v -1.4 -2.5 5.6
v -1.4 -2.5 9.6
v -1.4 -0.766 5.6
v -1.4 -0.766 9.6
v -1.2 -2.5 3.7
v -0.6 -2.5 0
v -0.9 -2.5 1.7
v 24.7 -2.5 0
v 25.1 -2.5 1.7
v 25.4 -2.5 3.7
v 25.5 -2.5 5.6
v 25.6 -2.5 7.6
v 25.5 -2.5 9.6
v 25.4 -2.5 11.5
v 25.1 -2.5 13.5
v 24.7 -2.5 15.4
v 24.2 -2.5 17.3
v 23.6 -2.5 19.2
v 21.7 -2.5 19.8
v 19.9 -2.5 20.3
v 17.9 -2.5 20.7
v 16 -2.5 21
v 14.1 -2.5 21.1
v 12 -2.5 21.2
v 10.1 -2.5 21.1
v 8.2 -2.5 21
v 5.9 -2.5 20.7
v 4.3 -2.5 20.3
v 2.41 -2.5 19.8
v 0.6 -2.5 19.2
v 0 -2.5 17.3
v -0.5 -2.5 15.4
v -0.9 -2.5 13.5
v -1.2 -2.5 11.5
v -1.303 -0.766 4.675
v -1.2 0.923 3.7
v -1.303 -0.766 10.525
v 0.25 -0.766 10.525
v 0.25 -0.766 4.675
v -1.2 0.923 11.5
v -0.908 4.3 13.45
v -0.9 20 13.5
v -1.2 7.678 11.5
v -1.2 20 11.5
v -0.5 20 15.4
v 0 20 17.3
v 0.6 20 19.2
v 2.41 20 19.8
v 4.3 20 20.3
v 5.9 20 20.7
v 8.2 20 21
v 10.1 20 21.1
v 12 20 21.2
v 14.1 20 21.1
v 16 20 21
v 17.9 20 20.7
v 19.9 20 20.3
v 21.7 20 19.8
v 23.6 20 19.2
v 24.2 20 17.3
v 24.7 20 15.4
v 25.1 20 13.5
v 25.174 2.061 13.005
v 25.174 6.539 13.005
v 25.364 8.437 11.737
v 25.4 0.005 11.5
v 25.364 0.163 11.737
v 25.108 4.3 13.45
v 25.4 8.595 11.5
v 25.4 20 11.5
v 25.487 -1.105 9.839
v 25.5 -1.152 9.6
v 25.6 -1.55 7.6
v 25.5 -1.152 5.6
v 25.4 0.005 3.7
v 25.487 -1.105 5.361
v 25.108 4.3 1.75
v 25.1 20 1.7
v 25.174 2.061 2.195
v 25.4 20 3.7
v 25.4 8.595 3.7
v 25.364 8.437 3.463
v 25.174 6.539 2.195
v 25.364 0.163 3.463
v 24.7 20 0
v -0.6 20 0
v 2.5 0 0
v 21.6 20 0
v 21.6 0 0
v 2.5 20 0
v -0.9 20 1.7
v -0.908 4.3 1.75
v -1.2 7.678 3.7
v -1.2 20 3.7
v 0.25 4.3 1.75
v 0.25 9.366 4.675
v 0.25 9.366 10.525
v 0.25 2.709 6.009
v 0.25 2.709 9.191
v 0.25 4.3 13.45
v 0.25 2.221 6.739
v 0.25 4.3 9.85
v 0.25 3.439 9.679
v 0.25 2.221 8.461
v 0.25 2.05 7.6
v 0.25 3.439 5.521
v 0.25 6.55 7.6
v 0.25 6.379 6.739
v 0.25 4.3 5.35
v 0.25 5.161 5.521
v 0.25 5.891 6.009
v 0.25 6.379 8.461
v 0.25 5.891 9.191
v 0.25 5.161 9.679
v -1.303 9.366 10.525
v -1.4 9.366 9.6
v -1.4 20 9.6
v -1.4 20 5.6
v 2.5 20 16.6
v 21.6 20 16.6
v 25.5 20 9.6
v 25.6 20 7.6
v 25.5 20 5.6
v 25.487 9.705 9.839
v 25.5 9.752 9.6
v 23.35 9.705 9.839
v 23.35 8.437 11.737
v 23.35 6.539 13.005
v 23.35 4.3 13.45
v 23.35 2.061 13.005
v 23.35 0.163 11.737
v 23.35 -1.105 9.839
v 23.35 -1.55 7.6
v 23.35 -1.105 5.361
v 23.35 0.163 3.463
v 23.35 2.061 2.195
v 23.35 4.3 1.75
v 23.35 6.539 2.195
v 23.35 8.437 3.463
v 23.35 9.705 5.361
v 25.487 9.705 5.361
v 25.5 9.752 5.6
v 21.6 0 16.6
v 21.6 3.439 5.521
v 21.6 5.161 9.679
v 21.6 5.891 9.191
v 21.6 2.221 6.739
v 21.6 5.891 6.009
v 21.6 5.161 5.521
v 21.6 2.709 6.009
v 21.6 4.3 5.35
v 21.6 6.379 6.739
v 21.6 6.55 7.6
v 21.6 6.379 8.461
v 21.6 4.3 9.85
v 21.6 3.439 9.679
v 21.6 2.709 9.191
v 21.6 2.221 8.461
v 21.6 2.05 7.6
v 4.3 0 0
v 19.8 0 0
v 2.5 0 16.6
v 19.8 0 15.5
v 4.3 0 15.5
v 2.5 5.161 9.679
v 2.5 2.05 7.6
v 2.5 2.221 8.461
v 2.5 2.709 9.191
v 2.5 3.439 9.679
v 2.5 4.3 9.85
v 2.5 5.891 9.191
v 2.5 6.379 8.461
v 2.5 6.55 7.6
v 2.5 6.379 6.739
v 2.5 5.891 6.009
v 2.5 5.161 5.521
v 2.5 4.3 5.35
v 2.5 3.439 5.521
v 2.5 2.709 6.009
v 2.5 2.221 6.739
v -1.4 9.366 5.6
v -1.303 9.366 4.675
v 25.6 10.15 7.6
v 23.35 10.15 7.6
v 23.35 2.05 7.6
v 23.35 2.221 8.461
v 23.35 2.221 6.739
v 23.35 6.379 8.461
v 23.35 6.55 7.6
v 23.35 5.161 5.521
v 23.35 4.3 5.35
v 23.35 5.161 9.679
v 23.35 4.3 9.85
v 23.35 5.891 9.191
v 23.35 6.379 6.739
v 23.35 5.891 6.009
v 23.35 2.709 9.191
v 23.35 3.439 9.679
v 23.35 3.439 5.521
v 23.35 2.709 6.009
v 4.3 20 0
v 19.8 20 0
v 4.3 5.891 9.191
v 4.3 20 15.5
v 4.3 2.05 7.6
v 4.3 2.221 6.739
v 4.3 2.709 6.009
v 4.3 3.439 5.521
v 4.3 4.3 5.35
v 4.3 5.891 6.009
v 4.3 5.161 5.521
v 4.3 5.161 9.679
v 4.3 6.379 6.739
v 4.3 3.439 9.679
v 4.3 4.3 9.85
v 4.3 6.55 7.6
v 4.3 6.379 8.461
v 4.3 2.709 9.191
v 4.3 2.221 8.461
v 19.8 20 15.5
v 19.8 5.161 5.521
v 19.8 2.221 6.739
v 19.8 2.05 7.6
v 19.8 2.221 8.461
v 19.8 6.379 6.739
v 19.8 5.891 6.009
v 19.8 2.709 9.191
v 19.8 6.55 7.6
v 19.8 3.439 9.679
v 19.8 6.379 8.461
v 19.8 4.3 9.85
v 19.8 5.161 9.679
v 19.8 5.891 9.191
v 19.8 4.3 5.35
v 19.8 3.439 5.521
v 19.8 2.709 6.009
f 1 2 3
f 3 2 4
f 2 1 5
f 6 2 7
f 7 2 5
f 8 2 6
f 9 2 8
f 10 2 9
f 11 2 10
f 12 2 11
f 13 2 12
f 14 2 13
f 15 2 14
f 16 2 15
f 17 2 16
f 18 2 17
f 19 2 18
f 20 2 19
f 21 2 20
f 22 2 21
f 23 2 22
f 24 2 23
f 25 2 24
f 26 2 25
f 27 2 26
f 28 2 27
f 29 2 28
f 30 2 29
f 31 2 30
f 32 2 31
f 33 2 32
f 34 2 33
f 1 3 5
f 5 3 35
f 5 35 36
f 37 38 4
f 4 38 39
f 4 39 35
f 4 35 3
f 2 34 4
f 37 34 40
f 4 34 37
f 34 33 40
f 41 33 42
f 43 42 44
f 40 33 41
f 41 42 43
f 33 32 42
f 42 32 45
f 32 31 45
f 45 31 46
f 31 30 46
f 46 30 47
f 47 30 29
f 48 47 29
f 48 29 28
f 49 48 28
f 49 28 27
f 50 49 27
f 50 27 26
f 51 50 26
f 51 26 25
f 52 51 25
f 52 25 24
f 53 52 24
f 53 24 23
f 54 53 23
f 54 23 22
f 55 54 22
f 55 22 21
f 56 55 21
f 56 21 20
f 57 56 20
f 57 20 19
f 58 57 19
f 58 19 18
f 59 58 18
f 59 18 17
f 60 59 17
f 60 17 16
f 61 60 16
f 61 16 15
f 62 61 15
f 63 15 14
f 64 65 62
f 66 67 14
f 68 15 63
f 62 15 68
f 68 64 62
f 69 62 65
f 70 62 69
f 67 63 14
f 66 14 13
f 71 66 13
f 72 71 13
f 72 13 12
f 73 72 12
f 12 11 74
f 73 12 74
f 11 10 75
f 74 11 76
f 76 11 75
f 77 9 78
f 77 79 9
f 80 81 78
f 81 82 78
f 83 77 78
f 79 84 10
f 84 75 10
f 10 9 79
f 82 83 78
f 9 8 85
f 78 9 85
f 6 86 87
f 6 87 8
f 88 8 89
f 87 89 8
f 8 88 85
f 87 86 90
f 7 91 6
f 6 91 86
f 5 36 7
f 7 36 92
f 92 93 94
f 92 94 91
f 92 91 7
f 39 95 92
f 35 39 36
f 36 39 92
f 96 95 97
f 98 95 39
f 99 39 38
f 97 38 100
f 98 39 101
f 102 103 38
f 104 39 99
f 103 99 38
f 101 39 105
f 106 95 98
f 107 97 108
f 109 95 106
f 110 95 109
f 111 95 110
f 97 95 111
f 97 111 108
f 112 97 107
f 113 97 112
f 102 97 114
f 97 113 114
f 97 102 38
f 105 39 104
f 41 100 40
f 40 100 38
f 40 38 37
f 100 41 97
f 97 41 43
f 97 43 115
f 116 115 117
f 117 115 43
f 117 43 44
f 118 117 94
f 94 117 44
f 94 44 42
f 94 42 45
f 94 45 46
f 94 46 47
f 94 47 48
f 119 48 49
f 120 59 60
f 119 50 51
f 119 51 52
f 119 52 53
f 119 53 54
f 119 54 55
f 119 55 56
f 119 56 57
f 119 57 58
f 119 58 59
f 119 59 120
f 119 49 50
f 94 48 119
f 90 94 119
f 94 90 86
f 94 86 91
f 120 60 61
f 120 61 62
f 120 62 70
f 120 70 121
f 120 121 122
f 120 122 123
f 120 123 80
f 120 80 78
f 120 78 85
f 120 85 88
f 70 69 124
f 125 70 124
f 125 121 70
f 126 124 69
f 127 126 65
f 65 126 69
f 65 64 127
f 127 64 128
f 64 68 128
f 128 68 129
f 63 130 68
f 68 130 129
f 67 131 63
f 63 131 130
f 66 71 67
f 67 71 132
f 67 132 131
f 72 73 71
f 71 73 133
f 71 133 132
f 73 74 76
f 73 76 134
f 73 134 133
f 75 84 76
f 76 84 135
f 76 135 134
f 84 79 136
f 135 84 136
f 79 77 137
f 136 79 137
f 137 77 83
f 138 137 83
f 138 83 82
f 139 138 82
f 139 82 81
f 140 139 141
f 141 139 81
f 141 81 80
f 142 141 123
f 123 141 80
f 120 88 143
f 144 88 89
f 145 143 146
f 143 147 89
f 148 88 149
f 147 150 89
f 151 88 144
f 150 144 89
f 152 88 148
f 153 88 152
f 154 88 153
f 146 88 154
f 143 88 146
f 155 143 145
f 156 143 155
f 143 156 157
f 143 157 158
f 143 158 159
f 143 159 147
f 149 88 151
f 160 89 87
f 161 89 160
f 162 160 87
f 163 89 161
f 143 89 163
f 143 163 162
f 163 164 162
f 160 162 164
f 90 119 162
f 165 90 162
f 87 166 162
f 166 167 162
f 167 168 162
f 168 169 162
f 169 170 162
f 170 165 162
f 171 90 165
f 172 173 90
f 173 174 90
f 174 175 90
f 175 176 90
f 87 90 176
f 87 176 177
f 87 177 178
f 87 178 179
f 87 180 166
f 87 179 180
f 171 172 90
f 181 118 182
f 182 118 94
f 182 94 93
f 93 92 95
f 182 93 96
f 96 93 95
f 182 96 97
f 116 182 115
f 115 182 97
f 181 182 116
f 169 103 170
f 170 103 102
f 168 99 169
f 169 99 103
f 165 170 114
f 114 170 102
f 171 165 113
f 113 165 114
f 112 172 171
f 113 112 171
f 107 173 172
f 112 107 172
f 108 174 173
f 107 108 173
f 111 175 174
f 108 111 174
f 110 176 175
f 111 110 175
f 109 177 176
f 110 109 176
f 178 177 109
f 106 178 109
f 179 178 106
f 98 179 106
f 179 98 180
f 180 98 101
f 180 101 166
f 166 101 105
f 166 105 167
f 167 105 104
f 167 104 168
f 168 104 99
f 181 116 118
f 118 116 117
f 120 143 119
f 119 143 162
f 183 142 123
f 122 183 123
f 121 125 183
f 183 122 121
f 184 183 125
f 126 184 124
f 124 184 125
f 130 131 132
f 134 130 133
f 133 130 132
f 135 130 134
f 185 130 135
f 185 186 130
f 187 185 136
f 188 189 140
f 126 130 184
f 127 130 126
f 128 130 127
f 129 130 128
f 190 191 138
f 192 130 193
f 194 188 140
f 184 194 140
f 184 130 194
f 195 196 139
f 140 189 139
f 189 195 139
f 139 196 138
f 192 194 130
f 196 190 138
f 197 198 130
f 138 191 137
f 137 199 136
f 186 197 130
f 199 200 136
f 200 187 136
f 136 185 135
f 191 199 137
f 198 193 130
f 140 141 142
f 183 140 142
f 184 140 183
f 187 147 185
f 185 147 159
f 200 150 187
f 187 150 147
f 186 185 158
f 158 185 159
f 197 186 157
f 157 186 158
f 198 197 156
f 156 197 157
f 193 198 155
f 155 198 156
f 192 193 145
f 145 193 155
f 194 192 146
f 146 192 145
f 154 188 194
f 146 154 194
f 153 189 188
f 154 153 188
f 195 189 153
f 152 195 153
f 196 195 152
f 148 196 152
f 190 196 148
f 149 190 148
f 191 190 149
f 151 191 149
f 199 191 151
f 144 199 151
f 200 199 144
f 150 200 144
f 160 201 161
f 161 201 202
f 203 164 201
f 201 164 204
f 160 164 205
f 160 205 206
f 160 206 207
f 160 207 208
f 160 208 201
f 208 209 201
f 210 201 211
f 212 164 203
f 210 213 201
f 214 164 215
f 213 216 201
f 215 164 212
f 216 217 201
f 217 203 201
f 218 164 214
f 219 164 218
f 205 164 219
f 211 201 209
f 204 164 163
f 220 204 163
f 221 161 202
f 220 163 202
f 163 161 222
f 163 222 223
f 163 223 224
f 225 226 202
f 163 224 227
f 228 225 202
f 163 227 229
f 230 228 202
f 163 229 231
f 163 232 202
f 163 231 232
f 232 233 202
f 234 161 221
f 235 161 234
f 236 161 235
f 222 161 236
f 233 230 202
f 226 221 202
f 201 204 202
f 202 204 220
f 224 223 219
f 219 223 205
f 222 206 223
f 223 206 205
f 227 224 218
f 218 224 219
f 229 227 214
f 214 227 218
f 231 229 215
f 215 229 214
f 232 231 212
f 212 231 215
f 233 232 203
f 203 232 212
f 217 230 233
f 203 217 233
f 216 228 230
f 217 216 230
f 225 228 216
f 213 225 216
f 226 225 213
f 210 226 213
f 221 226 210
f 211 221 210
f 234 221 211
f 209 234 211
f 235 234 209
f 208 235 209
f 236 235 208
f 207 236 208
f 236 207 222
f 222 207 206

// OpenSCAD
// Hardware Metrics

hwBoltDiameter = 4 / 2;		
hwNutDiameter = 10.5 / 2;
hwWasherDiamter = 11.2 / 2;

hwTubeOutsideDiameter = 19.1;
hwTubeInsideDiameter = 15.5;
hwTubeThickness = (hwTubeOutsideDiameter - hwTubeInsideDiameter) / 2;

// Design Metrics

kWallThickness = 2.5;		// thickness of shell walls
kInnerStub = 20;				// how far the projection goes inside the tube
kBeadCompensation = 0.5 / 2; // nozzle size divided in half


hSize = kWallThickness + hwTubeOutsideDiameter + hwTubeThickness;

// create inner stub

difference() {
	// inner support block
	translate([kWallThickness + hwTubeThickness, 0, 0])
		cube([hwTubeInsideDiameter,kInnerStub,hwTubeInsideDiameter]);	
	// bolt hole
	translate([0, 4.3, 7.6]) {
		rotate(a=[0,90,0]){
			cylinder(h = hSize * 2, r = hwBoltDiameter + kBeadCompensation, center = true, $fn = 16);
		}
	}
}


difference() {
	difference() {	// outer shell
	// sketchup polygon design, converted to messy math points
translate([2.4,kInnerStub,0])
rotate([90,-90,0])
linear_extrude(height = kInnerStub + kWallThickness)
polygon( points = [[0,0],[0,3],[1.7,3.3],[3.7,3.6],[5.6,3.8],[7.6,3.8],[9.6,3.8],[11.5,3.6],[13.5,3.3],[15.4, 2.9],[17.3,2.4],[19.2,1.8],
[19.8,-0.01],[20.3,-1.9],[19.2+1.5,-3.5],[19.2 + 1.8, -5.8],[19.2 + 1.9, -7.7],[19.2 + 2, -9.6],[19.2 + 1.9, -11.7],[19.2 + 1.8, -13.6],[19.2 + 1.5, - 15.5],[19.2 + 1.1, - 17.5],[19.2 + 0.6, -19.3], [19.2, -21.2],
[17.3, -21.2 - 0.6] ,[15.4, -21.2 - 1.1] ,[13.5, -21.2 - 1.5] ,[11.5,  -21.2 - 1.8] ,[9.6, -21.2 - 1.9] ,[7.6, -21.2 - 2] ,[5.6, -21.2 - 1.9] ,[3.7,  -21.2 -1.8] ,[1.7, -21.2 - 1.5] ,[0,  -21.2 - 1.1],
[0, 0]] );
		//cube([kWallThickness + hwTubeOutsideDiameter + kWallThickness, kInnerStub, hwTubeOutsideDiameter]);
		translate([kWallThickness, 0,-1])
			cube([hwTubeOutsideDiameter, kInnerStub, hwTubeOutsideDiameter - kWallThickness +1]);
		}
	// bolt hole
	translate([hwTubeOutsideDiameter /2 + kWallThickness, 4.3, 7.6]) rotate(a=[0,90,0])
		cylinder(h = (kWallThickness + hwTubeOutsideDiameter + kWallThickness + 5) , r = hwBoltDiameter + kBeadCompensation, center = true, $fn = 16);	
	// washer inset
	translate([hwTubeOutsideDiameter + kWallThickness +3, 4.3, 7.6]) rotate(a=[0,90,0])
		cylinder(h = (kWallThickness) , r = hwWasherDiamter + kBeadCompensation, center = true, $fn = 16);	
	// nut inset
	translate([-1, 4.3, 7.6]) rotate(a=[0,90,0])
		cylinder(h = (kWallThickness) , r = hwWasherDiamter + kBeadCompensation, center = true, $fn = 6);		
}


// test polygon
